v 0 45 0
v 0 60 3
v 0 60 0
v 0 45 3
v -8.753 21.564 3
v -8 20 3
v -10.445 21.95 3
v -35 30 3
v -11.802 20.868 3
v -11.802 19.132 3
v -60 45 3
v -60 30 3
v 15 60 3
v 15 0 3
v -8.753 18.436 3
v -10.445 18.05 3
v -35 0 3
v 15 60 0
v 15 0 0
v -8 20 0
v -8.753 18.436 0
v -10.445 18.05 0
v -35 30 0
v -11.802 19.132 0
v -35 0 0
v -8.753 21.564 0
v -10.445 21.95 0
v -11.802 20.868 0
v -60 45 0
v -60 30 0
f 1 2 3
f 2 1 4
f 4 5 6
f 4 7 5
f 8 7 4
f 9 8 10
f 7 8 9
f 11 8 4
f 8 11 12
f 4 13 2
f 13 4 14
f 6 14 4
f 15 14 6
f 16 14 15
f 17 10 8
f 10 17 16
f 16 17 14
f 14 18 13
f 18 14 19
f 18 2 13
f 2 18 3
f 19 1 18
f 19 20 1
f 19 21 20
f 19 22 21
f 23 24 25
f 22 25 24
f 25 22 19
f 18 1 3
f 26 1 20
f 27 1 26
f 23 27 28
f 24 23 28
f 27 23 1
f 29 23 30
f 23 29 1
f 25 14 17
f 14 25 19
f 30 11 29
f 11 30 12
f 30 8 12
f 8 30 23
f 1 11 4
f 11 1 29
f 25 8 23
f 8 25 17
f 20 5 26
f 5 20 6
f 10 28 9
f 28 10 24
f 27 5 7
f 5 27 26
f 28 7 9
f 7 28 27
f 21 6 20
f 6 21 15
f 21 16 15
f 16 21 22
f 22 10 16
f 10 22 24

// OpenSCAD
difference() {
    union() {
        cube([15, 60, 3]);
        translate([-60,30,0]) cube([75, 15, 3]);
        translate([-35,0,0]) cube([50, 30, 3]);
    }
    translate([-10,20,0]) cylinder(d=4, h=10, center=true);
}
